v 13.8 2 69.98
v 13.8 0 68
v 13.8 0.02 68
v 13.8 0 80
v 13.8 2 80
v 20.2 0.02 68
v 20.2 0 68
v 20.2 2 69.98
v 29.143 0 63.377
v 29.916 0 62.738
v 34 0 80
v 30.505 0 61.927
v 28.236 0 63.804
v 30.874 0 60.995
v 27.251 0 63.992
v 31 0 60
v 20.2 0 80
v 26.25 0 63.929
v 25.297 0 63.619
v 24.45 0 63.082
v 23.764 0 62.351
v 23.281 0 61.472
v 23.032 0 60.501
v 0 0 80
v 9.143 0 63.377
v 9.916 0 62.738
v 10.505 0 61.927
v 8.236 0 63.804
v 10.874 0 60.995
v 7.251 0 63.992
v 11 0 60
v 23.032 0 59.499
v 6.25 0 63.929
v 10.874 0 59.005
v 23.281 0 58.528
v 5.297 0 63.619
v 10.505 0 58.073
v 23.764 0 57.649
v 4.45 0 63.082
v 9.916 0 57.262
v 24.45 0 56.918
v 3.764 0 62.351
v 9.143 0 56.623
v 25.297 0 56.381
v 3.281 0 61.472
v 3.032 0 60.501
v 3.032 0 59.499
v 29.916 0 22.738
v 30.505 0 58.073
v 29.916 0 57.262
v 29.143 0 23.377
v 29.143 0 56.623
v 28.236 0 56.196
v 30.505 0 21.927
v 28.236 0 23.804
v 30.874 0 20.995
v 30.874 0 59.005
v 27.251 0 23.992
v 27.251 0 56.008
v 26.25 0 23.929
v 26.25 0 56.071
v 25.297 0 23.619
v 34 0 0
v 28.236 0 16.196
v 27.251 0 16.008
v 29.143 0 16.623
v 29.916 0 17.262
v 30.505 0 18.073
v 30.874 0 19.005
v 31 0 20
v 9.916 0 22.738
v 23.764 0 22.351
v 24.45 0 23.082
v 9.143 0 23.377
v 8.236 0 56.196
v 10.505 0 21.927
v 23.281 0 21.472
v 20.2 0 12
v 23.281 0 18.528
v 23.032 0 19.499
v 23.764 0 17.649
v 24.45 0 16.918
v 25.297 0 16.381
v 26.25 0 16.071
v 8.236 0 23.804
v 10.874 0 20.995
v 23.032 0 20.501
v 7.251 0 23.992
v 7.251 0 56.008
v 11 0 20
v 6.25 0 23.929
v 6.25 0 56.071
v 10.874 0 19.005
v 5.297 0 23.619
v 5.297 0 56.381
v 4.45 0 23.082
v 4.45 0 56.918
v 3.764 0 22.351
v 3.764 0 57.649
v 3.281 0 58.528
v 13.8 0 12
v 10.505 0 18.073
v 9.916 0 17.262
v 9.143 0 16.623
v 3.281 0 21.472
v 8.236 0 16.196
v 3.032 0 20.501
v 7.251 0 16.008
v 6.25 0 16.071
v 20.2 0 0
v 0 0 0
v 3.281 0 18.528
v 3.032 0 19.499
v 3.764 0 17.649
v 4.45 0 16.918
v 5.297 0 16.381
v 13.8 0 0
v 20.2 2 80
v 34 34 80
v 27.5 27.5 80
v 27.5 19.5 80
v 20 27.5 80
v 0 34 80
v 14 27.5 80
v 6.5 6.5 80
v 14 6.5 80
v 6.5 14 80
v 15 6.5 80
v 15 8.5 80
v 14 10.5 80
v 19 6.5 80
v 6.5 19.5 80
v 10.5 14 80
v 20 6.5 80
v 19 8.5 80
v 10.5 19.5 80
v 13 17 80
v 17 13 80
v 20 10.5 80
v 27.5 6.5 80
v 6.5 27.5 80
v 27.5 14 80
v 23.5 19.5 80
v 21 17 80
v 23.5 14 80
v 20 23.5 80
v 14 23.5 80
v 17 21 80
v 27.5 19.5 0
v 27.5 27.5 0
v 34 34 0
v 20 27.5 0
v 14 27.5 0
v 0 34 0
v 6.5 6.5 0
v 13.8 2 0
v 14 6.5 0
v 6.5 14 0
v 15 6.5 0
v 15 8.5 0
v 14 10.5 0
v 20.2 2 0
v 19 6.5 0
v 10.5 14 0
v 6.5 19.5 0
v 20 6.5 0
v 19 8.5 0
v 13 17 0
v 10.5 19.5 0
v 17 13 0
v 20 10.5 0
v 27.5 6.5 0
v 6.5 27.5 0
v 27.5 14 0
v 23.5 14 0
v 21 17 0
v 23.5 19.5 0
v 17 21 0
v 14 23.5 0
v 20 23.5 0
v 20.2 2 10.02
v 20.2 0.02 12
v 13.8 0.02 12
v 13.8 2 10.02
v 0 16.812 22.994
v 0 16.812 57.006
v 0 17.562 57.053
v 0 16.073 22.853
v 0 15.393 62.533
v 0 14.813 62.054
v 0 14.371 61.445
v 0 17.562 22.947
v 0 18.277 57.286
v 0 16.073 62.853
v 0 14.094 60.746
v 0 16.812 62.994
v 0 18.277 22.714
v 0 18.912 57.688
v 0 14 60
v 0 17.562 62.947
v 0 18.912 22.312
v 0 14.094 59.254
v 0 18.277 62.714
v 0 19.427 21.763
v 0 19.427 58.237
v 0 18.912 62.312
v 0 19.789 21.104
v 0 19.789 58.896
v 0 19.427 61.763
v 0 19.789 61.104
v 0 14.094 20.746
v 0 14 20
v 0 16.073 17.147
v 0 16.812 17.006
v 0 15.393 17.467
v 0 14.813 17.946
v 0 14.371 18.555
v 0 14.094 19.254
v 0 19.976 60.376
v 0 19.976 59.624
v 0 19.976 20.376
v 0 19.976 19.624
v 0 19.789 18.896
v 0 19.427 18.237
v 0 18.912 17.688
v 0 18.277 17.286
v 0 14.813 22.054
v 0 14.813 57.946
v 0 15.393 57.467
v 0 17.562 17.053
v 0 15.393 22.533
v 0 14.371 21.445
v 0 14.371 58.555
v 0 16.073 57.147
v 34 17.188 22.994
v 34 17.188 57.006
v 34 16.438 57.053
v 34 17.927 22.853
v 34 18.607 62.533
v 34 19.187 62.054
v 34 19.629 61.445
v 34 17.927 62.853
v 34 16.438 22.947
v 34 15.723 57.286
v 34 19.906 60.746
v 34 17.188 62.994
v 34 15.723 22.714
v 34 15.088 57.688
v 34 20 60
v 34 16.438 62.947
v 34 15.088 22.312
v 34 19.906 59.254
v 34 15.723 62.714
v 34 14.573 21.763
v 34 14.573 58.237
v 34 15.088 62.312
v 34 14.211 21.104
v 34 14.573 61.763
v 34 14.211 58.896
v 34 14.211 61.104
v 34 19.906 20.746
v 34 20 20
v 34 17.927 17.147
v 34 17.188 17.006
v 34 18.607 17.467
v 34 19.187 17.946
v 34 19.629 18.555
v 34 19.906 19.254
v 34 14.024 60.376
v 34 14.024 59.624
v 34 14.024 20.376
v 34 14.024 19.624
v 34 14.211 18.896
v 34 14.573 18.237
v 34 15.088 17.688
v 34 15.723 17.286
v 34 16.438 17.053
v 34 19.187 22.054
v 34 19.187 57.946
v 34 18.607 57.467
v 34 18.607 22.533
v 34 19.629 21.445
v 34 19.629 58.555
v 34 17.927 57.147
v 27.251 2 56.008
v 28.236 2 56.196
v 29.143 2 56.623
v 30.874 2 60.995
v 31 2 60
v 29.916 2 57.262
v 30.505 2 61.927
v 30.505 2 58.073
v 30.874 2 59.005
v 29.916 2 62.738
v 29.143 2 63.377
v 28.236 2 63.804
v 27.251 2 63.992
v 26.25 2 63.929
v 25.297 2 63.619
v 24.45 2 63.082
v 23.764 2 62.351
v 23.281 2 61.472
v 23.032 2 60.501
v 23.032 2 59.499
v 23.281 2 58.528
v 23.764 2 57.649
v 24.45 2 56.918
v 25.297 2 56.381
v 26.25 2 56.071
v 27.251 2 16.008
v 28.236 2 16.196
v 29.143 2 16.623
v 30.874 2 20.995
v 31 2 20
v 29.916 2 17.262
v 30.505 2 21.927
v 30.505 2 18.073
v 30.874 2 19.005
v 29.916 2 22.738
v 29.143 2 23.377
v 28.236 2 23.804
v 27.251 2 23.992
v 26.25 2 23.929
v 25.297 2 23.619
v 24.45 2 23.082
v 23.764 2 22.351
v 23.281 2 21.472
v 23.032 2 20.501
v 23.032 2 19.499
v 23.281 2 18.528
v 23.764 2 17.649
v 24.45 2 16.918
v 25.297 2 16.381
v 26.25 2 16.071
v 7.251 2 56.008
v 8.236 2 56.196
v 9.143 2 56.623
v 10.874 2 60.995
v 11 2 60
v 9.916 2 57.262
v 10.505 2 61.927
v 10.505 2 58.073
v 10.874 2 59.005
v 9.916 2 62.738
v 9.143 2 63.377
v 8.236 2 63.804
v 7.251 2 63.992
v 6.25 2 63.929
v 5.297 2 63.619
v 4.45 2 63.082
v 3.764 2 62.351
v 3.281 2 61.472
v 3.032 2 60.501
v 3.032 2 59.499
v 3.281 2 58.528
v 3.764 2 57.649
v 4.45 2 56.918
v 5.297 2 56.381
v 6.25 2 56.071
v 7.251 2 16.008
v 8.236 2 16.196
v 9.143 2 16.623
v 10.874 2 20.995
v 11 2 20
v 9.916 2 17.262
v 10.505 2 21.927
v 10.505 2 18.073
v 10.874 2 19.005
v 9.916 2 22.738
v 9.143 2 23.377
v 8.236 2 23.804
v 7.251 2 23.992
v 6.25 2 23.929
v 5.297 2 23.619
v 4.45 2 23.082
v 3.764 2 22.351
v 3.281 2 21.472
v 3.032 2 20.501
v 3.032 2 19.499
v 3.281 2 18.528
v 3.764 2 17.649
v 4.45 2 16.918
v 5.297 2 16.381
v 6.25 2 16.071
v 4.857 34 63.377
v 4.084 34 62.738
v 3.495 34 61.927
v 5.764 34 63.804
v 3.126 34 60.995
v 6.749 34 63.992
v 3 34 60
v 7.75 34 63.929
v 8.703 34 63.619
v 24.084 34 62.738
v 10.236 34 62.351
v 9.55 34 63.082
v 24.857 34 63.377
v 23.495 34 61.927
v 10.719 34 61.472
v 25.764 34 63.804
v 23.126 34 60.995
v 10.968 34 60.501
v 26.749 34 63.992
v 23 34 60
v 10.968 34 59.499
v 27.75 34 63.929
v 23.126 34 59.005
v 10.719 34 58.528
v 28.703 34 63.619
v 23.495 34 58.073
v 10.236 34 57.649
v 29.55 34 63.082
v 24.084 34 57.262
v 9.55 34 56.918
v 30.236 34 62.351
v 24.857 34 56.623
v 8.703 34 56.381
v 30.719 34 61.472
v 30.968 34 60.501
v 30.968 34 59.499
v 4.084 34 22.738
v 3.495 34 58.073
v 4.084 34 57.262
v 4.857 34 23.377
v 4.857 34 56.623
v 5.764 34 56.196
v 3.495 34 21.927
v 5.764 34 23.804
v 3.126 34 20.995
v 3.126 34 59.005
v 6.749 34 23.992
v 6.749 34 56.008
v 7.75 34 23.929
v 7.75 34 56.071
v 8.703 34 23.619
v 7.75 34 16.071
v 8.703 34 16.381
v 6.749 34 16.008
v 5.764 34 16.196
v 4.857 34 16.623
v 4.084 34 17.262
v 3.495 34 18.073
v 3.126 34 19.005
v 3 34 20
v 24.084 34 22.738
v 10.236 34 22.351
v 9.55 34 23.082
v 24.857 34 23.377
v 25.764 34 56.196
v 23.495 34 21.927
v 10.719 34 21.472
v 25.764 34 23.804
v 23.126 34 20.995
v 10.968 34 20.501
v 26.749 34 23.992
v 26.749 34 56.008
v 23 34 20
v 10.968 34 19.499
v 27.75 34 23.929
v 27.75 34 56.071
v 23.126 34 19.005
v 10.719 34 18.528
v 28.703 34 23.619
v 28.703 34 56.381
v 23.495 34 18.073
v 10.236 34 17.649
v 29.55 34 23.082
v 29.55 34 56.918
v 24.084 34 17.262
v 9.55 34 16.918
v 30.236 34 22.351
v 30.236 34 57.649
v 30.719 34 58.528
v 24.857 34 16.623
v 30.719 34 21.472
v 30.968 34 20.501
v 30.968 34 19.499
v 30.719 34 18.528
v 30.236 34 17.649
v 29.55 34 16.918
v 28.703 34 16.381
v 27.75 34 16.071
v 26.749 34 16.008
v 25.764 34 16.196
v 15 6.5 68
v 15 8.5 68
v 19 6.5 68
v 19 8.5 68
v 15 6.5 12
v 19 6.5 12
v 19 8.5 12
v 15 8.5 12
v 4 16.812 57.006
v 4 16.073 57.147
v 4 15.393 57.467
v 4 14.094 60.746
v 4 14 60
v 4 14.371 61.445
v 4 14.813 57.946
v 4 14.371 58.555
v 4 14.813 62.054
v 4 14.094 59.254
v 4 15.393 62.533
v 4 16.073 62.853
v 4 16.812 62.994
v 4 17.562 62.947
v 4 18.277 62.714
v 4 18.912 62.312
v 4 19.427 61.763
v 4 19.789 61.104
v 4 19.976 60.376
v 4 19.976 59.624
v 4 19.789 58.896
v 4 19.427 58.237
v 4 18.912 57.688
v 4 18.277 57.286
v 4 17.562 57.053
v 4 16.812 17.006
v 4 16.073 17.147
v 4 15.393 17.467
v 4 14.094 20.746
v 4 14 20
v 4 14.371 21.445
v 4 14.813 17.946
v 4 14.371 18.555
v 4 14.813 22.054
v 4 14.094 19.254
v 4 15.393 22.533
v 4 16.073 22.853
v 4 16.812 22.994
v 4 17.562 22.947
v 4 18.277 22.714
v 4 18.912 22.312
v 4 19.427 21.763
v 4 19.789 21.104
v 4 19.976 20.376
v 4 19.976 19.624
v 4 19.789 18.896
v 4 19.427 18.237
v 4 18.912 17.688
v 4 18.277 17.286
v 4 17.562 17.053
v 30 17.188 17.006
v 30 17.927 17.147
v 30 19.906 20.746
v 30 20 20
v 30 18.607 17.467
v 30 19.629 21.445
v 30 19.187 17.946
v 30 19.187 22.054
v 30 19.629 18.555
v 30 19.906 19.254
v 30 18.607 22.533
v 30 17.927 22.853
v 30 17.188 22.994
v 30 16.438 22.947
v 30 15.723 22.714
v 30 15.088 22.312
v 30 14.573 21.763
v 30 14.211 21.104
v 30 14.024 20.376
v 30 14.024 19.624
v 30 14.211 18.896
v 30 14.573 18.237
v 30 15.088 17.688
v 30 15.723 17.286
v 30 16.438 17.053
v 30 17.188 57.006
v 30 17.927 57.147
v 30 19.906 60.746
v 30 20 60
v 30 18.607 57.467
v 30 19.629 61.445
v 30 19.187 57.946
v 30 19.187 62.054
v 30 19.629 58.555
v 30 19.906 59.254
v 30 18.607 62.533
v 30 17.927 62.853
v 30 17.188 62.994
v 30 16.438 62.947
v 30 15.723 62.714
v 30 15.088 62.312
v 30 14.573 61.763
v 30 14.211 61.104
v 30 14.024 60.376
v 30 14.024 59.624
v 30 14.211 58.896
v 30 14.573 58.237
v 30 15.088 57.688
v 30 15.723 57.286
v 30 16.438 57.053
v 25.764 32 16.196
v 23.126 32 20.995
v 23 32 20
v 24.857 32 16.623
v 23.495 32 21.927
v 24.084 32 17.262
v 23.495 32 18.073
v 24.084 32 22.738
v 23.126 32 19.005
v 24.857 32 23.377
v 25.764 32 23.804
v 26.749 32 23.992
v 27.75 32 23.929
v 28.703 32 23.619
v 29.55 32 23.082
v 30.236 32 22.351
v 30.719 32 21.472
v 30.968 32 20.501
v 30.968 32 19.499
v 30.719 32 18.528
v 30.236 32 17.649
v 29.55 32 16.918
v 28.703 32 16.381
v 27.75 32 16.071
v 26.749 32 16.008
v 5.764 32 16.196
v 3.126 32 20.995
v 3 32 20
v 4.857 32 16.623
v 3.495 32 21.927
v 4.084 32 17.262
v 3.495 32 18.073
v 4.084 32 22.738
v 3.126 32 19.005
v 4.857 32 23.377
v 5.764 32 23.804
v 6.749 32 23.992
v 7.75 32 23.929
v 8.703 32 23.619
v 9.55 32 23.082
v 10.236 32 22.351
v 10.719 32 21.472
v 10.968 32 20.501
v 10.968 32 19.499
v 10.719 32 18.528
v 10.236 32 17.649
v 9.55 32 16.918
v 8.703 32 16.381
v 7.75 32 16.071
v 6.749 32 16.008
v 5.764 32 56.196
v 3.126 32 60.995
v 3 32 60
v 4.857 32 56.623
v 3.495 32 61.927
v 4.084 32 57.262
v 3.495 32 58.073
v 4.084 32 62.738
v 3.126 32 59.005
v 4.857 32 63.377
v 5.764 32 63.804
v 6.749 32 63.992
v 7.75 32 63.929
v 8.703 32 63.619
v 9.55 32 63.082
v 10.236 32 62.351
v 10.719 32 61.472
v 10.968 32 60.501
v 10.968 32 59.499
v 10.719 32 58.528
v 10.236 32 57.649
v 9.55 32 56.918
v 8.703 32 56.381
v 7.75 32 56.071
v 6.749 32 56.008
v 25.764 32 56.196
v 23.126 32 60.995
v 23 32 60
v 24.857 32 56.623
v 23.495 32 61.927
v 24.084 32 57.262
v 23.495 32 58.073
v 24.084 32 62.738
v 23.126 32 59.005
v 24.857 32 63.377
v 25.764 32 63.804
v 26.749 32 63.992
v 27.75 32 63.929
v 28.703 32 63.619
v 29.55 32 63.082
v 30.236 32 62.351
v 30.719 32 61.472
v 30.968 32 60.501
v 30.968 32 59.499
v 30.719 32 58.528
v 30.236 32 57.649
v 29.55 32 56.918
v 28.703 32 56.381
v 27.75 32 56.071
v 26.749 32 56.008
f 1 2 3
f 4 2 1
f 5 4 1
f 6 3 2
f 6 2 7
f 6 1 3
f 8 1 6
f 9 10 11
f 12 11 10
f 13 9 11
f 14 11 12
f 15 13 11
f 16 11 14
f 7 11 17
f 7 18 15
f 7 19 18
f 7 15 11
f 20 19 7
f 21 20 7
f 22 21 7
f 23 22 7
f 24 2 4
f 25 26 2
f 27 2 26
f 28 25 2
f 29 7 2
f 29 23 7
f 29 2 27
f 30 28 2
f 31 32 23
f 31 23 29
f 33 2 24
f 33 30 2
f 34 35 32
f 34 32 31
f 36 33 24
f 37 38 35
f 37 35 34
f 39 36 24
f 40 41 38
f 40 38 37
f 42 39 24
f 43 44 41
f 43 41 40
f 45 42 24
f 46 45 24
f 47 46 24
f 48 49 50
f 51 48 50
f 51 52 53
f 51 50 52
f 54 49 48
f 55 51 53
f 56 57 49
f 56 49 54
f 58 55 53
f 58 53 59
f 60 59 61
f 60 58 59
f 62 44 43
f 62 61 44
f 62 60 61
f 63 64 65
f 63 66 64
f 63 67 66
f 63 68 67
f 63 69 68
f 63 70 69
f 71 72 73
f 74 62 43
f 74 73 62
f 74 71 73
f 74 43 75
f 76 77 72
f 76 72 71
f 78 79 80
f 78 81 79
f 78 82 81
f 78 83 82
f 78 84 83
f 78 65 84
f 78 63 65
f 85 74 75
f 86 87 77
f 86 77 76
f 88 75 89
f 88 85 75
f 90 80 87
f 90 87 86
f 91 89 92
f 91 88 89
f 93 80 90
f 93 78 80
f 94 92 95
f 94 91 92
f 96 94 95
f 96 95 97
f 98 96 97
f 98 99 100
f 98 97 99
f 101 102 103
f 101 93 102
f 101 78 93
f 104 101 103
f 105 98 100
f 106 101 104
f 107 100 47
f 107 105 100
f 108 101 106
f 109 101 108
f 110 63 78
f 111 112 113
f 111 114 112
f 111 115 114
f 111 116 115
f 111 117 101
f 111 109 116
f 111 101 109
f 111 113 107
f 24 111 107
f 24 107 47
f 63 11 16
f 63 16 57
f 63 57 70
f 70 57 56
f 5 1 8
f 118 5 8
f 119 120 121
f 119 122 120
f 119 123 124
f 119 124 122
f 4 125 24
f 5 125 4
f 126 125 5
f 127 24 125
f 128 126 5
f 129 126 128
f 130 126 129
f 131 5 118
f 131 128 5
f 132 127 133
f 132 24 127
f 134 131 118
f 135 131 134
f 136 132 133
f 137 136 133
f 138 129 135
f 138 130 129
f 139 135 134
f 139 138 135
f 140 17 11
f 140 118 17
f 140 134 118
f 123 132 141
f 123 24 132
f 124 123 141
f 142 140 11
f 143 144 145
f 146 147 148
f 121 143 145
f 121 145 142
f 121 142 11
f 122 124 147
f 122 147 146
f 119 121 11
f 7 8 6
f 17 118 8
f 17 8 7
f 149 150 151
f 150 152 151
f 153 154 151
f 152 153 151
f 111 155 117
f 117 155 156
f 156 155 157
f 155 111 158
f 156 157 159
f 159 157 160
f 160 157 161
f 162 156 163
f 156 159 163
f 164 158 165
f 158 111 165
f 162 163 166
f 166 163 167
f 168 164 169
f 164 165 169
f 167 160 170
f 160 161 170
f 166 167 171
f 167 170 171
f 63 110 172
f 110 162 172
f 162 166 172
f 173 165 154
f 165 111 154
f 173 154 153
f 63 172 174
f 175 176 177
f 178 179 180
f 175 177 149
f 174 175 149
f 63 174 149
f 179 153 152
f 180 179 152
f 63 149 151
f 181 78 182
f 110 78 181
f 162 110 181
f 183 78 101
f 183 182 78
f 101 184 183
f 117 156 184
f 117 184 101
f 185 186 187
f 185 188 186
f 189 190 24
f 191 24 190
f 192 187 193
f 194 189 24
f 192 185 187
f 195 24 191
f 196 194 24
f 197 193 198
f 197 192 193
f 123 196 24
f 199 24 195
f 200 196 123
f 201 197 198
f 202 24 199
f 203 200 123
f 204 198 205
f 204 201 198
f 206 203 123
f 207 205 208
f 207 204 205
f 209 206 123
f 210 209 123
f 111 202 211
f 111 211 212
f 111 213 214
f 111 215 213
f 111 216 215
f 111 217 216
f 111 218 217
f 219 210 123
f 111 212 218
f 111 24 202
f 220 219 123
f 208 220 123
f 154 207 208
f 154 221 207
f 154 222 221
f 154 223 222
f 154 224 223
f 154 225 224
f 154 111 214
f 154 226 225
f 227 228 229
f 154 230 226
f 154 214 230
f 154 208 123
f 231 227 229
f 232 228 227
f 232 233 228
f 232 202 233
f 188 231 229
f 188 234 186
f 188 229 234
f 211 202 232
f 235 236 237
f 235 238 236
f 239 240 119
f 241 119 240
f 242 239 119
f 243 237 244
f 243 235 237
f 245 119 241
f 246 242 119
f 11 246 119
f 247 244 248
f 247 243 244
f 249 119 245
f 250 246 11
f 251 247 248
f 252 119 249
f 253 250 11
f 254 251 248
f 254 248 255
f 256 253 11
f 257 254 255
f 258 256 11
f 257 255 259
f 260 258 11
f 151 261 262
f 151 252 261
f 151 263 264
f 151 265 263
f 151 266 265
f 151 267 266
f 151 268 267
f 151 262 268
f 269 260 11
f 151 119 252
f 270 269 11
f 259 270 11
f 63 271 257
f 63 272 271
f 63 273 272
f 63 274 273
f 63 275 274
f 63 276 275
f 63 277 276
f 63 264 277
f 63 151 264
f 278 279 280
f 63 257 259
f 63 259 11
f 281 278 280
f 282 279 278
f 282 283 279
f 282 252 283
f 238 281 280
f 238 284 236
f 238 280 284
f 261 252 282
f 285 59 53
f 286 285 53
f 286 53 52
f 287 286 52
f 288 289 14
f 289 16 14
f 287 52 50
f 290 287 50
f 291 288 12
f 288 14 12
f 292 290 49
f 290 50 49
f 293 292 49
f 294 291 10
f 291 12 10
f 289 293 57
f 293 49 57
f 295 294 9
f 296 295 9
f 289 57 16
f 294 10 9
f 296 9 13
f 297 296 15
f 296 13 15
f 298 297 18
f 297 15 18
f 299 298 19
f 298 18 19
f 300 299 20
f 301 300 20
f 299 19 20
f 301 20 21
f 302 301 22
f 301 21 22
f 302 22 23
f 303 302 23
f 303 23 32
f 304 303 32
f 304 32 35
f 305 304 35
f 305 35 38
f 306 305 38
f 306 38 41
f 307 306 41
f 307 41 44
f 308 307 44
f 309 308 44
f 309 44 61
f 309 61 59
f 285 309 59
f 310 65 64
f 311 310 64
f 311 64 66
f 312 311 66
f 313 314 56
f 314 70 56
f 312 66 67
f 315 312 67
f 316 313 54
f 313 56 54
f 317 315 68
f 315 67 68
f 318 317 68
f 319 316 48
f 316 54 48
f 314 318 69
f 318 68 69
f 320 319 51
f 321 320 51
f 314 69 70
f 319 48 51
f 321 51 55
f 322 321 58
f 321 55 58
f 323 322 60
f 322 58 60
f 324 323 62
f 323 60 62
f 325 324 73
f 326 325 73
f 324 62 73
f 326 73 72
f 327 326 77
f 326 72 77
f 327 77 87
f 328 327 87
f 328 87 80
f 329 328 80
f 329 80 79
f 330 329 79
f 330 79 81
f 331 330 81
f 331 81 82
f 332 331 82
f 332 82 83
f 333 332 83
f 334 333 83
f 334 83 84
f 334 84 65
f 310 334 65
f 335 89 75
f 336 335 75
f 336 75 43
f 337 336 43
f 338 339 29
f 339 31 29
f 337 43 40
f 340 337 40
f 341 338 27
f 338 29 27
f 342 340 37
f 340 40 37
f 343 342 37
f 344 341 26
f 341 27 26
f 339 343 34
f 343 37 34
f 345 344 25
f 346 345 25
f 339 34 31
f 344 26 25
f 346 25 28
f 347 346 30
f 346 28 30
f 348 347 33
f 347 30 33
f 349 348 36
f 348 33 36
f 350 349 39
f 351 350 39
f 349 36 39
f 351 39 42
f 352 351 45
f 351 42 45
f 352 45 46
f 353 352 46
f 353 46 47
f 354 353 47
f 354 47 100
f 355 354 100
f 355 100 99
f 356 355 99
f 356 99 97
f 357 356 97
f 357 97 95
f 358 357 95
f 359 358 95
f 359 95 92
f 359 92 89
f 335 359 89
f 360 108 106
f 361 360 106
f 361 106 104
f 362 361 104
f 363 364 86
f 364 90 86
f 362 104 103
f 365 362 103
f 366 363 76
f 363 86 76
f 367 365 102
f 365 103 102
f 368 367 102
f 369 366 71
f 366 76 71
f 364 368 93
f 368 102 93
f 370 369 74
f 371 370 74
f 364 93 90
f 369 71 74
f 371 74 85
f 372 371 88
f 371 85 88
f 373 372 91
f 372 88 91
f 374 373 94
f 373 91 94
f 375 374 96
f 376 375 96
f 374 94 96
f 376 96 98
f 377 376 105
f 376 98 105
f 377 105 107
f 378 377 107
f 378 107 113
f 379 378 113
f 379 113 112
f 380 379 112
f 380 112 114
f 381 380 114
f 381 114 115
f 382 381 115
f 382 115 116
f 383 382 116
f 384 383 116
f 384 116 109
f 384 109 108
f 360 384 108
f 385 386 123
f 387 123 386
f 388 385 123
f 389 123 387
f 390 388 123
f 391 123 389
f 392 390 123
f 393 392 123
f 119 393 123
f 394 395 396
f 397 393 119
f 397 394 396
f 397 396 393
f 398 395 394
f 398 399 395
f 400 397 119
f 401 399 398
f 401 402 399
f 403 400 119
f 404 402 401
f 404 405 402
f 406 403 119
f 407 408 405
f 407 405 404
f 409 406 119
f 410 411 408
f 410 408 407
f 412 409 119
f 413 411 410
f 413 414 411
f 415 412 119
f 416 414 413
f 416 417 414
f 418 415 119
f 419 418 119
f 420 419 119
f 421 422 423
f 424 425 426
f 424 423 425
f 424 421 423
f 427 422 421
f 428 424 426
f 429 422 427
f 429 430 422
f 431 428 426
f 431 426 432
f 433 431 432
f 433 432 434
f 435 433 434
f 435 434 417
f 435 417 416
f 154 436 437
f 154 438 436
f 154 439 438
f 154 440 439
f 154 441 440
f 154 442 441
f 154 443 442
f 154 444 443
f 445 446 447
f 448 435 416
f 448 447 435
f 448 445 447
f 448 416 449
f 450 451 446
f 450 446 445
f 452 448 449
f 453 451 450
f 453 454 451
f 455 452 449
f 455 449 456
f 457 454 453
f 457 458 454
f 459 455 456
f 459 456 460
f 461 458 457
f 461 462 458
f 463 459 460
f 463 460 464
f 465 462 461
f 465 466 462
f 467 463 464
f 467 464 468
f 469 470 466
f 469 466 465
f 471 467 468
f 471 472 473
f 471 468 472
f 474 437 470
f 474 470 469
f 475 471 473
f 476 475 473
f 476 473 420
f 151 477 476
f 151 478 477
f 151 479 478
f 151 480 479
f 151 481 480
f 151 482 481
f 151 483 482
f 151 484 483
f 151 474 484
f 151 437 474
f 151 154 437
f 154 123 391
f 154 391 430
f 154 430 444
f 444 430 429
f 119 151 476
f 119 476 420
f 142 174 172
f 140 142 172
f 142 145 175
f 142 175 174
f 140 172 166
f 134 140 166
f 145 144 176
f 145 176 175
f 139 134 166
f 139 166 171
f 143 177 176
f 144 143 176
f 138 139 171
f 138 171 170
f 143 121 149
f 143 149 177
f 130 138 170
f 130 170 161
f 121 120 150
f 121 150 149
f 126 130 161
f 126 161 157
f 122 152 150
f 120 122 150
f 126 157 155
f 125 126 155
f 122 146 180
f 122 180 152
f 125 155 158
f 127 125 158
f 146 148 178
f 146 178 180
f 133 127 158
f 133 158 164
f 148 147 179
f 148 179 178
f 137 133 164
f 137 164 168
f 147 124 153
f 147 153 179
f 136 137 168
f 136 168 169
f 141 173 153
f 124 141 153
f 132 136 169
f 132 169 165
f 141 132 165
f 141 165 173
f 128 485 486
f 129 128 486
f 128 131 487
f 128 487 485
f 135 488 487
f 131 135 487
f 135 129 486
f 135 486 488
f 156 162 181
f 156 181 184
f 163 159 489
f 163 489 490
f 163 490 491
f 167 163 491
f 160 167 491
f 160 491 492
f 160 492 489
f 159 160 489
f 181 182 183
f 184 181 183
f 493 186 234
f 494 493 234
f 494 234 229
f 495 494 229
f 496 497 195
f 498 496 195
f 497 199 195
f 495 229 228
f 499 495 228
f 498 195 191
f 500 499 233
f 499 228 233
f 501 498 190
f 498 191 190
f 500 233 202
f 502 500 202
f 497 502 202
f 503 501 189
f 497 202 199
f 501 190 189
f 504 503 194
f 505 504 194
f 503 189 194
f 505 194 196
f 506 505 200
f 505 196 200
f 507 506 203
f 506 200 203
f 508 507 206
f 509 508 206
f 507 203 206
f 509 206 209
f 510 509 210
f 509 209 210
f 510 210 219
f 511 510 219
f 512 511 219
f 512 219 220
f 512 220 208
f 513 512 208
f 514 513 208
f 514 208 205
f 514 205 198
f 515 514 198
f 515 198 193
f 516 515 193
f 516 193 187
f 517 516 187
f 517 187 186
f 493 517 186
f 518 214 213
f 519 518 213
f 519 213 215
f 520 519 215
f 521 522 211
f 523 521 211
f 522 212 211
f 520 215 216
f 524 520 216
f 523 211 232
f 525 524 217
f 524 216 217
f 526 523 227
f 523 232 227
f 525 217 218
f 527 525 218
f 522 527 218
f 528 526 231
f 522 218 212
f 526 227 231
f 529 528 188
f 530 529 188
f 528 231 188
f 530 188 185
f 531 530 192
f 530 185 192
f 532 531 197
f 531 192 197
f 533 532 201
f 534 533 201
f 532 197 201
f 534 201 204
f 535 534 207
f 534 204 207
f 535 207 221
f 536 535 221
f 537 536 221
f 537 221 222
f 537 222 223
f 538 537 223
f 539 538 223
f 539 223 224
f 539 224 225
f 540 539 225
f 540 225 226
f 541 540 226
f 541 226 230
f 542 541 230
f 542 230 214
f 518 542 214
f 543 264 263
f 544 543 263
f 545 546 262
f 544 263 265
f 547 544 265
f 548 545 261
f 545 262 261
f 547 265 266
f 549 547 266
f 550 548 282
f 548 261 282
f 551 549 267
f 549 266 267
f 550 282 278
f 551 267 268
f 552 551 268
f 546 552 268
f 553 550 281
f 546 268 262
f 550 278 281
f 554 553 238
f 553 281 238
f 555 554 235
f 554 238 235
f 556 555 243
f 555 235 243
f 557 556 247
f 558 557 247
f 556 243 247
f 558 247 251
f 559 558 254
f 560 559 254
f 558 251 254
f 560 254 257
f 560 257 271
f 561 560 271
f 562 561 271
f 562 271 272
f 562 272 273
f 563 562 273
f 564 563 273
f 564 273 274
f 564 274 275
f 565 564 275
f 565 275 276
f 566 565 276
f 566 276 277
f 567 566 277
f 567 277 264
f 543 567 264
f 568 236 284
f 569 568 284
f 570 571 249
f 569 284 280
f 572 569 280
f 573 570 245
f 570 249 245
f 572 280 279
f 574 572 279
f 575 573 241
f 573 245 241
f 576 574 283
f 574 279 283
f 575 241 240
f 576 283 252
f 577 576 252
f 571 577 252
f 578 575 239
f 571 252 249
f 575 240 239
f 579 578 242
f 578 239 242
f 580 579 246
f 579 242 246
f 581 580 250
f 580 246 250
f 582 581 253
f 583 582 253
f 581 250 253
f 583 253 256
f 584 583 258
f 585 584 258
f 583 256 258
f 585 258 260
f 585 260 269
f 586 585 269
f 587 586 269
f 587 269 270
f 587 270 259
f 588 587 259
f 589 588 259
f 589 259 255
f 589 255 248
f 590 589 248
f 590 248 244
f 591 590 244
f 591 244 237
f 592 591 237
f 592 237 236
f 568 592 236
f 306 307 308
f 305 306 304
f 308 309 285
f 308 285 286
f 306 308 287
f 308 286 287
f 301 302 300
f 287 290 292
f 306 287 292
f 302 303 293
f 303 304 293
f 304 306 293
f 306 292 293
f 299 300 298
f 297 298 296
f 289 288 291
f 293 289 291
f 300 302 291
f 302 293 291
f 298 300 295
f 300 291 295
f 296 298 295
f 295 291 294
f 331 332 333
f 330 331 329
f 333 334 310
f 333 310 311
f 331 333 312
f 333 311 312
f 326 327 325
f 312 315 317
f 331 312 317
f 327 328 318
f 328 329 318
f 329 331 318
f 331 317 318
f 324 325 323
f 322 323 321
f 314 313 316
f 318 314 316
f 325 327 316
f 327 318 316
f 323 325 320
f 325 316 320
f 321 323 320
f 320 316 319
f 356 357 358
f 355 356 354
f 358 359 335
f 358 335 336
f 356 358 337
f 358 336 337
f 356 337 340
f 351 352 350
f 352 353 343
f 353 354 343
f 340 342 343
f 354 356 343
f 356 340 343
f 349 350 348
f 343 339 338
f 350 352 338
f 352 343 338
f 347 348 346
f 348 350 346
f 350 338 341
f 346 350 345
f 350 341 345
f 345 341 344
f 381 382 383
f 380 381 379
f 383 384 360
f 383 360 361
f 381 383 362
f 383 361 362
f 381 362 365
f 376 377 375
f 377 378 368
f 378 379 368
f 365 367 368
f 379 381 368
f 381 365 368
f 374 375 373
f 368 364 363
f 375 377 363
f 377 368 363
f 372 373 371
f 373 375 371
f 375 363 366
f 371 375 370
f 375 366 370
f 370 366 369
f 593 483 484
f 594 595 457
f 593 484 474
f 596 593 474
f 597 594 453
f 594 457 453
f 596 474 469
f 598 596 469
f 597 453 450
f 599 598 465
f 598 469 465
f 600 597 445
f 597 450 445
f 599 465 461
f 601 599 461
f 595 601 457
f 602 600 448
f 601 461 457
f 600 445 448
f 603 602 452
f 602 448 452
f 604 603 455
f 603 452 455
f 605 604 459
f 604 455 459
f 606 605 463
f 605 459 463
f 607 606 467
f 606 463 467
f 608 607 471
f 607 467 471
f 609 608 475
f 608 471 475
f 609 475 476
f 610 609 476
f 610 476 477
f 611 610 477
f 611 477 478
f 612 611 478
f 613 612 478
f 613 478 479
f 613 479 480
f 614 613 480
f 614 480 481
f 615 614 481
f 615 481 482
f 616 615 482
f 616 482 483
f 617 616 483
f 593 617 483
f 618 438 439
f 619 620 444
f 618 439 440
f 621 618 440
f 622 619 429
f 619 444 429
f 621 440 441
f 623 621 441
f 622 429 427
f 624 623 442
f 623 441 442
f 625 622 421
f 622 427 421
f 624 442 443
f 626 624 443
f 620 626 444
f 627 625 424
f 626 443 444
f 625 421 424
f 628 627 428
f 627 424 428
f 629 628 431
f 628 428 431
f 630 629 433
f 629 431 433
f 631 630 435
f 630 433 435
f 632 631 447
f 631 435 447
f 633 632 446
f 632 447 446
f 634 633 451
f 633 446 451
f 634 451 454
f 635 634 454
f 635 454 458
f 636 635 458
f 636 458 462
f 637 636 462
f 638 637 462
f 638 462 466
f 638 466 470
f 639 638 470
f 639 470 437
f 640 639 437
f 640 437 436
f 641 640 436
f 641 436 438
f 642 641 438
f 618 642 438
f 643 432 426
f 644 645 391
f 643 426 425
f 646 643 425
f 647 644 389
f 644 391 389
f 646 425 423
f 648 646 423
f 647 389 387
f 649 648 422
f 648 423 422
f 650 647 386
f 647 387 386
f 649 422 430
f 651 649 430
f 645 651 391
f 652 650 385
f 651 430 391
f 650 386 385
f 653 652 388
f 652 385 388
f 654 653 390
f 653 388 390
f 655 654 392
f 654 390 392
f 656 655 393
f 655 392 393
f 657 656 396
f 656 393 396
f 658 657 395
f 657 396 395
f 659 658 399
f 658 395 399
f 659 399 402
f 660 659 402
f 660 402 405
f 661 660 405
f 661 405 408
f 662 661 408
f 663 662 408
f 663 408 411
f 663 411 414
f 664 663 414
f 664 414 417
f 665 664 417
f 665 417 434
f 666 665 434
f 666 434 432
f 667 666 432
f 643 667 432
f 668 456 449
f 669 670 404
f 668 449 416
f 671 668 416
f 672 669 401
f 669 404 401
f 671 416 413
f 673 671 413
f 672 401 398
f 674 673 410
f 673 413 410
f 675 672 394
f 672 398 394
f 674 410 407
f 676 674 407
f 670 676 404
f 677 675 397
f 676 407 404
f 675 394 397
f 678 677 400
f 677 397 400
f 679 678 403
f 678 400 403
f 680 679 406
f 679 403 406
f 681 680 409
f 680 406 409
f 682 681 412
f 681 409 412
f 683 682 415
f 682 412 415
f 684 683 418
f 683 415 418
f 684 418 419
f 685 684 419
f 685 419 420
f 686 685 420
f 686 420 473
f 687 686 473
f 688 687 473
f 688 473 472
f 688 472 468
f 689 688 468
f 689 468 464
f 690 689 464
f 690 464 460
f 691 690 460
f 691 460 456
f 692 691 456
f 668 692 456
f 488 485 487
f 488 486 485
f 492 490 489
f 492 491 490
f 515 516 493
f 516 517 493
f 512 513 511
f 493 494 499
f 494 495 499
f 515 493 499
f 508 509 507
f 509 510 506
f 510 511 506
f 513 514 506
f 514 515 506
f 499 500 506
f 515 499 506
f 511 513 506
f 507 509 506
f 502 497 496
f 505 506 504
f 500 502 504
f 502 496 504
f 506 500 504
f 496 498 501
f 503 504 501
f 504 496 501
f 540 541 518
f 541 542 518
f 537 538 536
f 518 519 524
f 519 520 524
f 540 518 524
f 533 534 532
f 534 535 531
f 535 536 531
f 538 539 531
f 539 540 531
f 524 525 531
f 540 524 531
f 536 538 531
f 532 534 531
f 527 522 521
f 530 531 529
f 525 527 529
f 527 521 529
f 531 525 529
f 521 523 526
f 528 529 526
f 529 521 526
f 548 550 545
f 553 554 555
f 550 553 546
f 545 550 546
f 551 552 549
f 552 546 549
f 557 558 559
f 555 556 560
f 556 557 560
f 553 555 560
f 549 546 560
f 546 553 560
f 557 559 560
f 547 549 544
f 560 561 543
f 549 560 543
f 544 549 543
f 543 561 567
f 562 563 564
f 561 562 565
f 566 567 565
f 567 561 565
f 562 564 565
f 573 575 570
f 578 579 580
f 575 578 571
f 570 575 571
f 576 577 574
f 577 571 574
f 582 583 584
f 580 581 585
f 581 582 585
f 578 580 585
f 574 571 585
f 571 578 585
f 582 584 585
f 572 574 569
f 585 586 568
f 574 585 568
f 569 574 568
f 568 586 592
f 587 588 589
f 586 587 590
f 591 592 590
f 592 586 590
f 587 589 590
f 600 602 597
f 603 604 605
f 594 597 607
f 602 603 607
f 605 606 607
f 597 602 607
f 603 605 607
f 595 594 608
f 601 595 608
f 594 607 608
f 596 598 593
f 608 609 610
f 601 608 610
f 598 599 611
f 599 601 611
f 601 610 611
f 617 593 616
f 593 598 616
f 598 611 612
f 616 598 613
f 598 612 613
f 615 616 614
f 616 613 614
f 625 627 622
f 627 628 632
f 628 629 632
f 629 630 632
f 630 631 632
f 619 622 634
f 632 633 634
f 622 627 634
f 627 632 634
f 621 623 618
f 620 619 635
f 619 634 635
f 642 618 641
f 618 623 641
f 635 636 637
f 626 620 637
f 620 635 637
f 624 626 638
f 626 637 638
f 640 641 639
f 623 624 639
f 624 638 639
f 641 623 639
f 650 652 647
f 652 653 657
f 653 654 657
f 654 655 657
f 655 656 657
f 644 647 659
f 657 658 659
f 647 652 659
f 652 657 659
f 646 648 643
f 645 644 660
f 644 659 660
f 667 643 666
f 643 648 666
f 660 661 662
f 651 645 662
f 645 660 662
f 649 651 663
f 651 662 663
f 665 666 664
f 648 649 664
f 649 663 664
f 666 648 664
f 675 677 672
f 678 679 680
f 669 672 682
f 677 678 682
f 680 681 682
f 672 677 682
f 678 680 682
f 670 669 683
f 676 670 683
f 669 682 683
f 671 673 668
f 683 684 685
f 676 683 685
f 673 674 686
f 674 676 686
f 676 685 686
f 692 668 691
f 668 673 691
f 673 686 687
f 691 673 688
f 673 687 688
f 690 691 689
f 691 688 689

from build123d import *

# Parameters (mm, degrees)
SKETCH_W        = 34
SKETCH_H        = 34
PAD_DEPTH       = 80
POCKET_DEPTH    = 80
SKETCH002_R     = 3
POCKET001_DEPTH = 4
SKETCH003_R     = 3
POCKET002_DEPTH = 4
SKETCH004_R     = 4
POCKET003_DEPTH = 2
SKETCH005_R     = 4
POCKET004_DEPTH = 2
SKETCH006_W     = 6.4
SKETCH006_H     = 2
SKETCH006_W_2   = 4
POCKET005_DEPTH = 12
SKETCH007_W     = 6.4
SKETCH007_H     = 2
SKETCH007_W_2   = 4
POCKET006_DEPTH = 12
CHAMFER_SIZE    = 1.98
CHAMFER001_SIZE = 1.98


with BuildPart() as part:
    # Sketch → Pad (new body)
    with BuildSketch(Plane.XY):
        with Locations((17, 17)):
            Rectangle(SKETCH_W, SKETCH_H)
    extrude(amount=PAD_DEPTH)

    # Sketch001 (on Face6 of Pad) → Pocket (cut)
    with BuildSketch(Plane.XY.offset(80)):
        Polygon((6.5, 27.5), (14, 27.5), (14, 23.5), (17, 21), (20, 23.5), (20, 27.5), (27.5, 27.5), (27.5, 19.5), (23.5, 19.5), (21, 17), (23.5, 14), (27.5, 14), (27.5, 6.5), (20, 6.5), (20, 10.5), (17, 13), (14, 10.5), (14, 6.5), (6.5, 6.5), (6.5, 14), (10.5, 14), (13, 17), (10.5, 19.5), (6.5, 19.5), align=None)
    extrude(amount=-POCKET_DEPTH, mode=Mode.SUBTRACT)

    # Sketch002 (on Face2 of Pocket) → Pocket001 (cut)
    with BuildSketch(Plane(origin=(0, 0, 0), x_dir=(0, -1, 0), z_dir=(-1, 0, 0))):
        with Locations((-17, 60)):
            Circle(SKETCH002_R)
        with Locations((-17, 20)):
            Circle(SKETCH002_R)
    extrude(amount=-POCKET001_DEPTH, mode=Mode.SUBTRACT)

    # Sketch003 (on Face3 of Pocket001) → Pocket002 (cut)
    with BuildSketch(Plane.YZ.offset(34)):
        with Locations((17, 60)):
            Circle(SKETCH003_R)
        with Locations((17, 20)):
            Circle(SKETCH003_R)
    extrude(amount=-POCKET002_DEPTH, mode=Mode.SUBTRACT)

    # Sketch004 (on Face1 of Pocket002) → Pocket003 (cut)
    with BuildSketch(Plane(origin=(0, 34, 0), x_dir=(-1, 0, 0), z_dir=(0, 1, 0))):
        with Locations((-27, 60)):
            Circle(SKETCH004_R)
        with Locations((-7, 60)):
            Circle(SKETCH004_R)
        with Locations((-27, 20)):
            Circle(SKETCH004_R)
        with Locations((-7, 20)):
            Circle(SKETCH004_R)
    extrude(amount=-POCKET003_DEPTH, mode=Mode.SUBTRACT)

    # Sketch005 (on Face10 of Pocket003) → Pocket004 (cut)
    with BuildSketch(Plane.XZ):
        with Locations((7, 60)):
            Circle(SKETCH005_R)
        with Locations((27, 60)):
            Circle(SKETCH005_R)
        with Locations((7, 20)):
            Circle(SKETCH005_R)
        with Locations((27, 20)):
            Circle(SKETCH005_R)
    extrude(amount=-POCKET004_DEPTH, mode=Mode.SUBTRACT)

    # Sketch006 (on Face4 of Pocket004) → Pocket005 (cut)
    with BuildSketch(Plane.XY.offset(80)):
        with Locations((17, 1)):
            Rectangle(SKETCH006_W, SKETCH006_H)
        with Locations((17, 7.5)):
            Rectangle(SKETCH006_W_2, SKETCH006_H)
    extrude(amount=-POCKET005_DEPTH, mode=Mode.SUBTRACT)

    # Sketch007 (on Face3 of Pocket005) → Pocket006 (cut)
    with BuildSketch(Plane(origin=(0, 0, 0), x_dir=(1, 0, 0), z_dir=(0, 0, -1))):
        with Locations((17, -1)):
            Rectangle(SKETCH007_W, SKETCH007_H)
        with Locations((17, -7.5)):
            Rectangle(SKETCH007_W_2, SKETCH007_H)
    extrude(amount=-POCKET006_DEPTH, mode=Mode.SUBTRACT)

    # Chamfer
    chamfer_edges = [part.edges().sort_by_distance(p)[0] for p in [
        (17, 2, 12),
    ]]
    chamfer(chamfer_edges, length=CHAMFER_SIZE)

    # Chamfer001
    chamfer001_edges = [part.edges().sort_by_distance(p)[0] for p in [
        (17, 2, 68),
    ]]
    chamfer(chamfer001_edges, length=CHAMFER001_SIZE)


solid = part.part
